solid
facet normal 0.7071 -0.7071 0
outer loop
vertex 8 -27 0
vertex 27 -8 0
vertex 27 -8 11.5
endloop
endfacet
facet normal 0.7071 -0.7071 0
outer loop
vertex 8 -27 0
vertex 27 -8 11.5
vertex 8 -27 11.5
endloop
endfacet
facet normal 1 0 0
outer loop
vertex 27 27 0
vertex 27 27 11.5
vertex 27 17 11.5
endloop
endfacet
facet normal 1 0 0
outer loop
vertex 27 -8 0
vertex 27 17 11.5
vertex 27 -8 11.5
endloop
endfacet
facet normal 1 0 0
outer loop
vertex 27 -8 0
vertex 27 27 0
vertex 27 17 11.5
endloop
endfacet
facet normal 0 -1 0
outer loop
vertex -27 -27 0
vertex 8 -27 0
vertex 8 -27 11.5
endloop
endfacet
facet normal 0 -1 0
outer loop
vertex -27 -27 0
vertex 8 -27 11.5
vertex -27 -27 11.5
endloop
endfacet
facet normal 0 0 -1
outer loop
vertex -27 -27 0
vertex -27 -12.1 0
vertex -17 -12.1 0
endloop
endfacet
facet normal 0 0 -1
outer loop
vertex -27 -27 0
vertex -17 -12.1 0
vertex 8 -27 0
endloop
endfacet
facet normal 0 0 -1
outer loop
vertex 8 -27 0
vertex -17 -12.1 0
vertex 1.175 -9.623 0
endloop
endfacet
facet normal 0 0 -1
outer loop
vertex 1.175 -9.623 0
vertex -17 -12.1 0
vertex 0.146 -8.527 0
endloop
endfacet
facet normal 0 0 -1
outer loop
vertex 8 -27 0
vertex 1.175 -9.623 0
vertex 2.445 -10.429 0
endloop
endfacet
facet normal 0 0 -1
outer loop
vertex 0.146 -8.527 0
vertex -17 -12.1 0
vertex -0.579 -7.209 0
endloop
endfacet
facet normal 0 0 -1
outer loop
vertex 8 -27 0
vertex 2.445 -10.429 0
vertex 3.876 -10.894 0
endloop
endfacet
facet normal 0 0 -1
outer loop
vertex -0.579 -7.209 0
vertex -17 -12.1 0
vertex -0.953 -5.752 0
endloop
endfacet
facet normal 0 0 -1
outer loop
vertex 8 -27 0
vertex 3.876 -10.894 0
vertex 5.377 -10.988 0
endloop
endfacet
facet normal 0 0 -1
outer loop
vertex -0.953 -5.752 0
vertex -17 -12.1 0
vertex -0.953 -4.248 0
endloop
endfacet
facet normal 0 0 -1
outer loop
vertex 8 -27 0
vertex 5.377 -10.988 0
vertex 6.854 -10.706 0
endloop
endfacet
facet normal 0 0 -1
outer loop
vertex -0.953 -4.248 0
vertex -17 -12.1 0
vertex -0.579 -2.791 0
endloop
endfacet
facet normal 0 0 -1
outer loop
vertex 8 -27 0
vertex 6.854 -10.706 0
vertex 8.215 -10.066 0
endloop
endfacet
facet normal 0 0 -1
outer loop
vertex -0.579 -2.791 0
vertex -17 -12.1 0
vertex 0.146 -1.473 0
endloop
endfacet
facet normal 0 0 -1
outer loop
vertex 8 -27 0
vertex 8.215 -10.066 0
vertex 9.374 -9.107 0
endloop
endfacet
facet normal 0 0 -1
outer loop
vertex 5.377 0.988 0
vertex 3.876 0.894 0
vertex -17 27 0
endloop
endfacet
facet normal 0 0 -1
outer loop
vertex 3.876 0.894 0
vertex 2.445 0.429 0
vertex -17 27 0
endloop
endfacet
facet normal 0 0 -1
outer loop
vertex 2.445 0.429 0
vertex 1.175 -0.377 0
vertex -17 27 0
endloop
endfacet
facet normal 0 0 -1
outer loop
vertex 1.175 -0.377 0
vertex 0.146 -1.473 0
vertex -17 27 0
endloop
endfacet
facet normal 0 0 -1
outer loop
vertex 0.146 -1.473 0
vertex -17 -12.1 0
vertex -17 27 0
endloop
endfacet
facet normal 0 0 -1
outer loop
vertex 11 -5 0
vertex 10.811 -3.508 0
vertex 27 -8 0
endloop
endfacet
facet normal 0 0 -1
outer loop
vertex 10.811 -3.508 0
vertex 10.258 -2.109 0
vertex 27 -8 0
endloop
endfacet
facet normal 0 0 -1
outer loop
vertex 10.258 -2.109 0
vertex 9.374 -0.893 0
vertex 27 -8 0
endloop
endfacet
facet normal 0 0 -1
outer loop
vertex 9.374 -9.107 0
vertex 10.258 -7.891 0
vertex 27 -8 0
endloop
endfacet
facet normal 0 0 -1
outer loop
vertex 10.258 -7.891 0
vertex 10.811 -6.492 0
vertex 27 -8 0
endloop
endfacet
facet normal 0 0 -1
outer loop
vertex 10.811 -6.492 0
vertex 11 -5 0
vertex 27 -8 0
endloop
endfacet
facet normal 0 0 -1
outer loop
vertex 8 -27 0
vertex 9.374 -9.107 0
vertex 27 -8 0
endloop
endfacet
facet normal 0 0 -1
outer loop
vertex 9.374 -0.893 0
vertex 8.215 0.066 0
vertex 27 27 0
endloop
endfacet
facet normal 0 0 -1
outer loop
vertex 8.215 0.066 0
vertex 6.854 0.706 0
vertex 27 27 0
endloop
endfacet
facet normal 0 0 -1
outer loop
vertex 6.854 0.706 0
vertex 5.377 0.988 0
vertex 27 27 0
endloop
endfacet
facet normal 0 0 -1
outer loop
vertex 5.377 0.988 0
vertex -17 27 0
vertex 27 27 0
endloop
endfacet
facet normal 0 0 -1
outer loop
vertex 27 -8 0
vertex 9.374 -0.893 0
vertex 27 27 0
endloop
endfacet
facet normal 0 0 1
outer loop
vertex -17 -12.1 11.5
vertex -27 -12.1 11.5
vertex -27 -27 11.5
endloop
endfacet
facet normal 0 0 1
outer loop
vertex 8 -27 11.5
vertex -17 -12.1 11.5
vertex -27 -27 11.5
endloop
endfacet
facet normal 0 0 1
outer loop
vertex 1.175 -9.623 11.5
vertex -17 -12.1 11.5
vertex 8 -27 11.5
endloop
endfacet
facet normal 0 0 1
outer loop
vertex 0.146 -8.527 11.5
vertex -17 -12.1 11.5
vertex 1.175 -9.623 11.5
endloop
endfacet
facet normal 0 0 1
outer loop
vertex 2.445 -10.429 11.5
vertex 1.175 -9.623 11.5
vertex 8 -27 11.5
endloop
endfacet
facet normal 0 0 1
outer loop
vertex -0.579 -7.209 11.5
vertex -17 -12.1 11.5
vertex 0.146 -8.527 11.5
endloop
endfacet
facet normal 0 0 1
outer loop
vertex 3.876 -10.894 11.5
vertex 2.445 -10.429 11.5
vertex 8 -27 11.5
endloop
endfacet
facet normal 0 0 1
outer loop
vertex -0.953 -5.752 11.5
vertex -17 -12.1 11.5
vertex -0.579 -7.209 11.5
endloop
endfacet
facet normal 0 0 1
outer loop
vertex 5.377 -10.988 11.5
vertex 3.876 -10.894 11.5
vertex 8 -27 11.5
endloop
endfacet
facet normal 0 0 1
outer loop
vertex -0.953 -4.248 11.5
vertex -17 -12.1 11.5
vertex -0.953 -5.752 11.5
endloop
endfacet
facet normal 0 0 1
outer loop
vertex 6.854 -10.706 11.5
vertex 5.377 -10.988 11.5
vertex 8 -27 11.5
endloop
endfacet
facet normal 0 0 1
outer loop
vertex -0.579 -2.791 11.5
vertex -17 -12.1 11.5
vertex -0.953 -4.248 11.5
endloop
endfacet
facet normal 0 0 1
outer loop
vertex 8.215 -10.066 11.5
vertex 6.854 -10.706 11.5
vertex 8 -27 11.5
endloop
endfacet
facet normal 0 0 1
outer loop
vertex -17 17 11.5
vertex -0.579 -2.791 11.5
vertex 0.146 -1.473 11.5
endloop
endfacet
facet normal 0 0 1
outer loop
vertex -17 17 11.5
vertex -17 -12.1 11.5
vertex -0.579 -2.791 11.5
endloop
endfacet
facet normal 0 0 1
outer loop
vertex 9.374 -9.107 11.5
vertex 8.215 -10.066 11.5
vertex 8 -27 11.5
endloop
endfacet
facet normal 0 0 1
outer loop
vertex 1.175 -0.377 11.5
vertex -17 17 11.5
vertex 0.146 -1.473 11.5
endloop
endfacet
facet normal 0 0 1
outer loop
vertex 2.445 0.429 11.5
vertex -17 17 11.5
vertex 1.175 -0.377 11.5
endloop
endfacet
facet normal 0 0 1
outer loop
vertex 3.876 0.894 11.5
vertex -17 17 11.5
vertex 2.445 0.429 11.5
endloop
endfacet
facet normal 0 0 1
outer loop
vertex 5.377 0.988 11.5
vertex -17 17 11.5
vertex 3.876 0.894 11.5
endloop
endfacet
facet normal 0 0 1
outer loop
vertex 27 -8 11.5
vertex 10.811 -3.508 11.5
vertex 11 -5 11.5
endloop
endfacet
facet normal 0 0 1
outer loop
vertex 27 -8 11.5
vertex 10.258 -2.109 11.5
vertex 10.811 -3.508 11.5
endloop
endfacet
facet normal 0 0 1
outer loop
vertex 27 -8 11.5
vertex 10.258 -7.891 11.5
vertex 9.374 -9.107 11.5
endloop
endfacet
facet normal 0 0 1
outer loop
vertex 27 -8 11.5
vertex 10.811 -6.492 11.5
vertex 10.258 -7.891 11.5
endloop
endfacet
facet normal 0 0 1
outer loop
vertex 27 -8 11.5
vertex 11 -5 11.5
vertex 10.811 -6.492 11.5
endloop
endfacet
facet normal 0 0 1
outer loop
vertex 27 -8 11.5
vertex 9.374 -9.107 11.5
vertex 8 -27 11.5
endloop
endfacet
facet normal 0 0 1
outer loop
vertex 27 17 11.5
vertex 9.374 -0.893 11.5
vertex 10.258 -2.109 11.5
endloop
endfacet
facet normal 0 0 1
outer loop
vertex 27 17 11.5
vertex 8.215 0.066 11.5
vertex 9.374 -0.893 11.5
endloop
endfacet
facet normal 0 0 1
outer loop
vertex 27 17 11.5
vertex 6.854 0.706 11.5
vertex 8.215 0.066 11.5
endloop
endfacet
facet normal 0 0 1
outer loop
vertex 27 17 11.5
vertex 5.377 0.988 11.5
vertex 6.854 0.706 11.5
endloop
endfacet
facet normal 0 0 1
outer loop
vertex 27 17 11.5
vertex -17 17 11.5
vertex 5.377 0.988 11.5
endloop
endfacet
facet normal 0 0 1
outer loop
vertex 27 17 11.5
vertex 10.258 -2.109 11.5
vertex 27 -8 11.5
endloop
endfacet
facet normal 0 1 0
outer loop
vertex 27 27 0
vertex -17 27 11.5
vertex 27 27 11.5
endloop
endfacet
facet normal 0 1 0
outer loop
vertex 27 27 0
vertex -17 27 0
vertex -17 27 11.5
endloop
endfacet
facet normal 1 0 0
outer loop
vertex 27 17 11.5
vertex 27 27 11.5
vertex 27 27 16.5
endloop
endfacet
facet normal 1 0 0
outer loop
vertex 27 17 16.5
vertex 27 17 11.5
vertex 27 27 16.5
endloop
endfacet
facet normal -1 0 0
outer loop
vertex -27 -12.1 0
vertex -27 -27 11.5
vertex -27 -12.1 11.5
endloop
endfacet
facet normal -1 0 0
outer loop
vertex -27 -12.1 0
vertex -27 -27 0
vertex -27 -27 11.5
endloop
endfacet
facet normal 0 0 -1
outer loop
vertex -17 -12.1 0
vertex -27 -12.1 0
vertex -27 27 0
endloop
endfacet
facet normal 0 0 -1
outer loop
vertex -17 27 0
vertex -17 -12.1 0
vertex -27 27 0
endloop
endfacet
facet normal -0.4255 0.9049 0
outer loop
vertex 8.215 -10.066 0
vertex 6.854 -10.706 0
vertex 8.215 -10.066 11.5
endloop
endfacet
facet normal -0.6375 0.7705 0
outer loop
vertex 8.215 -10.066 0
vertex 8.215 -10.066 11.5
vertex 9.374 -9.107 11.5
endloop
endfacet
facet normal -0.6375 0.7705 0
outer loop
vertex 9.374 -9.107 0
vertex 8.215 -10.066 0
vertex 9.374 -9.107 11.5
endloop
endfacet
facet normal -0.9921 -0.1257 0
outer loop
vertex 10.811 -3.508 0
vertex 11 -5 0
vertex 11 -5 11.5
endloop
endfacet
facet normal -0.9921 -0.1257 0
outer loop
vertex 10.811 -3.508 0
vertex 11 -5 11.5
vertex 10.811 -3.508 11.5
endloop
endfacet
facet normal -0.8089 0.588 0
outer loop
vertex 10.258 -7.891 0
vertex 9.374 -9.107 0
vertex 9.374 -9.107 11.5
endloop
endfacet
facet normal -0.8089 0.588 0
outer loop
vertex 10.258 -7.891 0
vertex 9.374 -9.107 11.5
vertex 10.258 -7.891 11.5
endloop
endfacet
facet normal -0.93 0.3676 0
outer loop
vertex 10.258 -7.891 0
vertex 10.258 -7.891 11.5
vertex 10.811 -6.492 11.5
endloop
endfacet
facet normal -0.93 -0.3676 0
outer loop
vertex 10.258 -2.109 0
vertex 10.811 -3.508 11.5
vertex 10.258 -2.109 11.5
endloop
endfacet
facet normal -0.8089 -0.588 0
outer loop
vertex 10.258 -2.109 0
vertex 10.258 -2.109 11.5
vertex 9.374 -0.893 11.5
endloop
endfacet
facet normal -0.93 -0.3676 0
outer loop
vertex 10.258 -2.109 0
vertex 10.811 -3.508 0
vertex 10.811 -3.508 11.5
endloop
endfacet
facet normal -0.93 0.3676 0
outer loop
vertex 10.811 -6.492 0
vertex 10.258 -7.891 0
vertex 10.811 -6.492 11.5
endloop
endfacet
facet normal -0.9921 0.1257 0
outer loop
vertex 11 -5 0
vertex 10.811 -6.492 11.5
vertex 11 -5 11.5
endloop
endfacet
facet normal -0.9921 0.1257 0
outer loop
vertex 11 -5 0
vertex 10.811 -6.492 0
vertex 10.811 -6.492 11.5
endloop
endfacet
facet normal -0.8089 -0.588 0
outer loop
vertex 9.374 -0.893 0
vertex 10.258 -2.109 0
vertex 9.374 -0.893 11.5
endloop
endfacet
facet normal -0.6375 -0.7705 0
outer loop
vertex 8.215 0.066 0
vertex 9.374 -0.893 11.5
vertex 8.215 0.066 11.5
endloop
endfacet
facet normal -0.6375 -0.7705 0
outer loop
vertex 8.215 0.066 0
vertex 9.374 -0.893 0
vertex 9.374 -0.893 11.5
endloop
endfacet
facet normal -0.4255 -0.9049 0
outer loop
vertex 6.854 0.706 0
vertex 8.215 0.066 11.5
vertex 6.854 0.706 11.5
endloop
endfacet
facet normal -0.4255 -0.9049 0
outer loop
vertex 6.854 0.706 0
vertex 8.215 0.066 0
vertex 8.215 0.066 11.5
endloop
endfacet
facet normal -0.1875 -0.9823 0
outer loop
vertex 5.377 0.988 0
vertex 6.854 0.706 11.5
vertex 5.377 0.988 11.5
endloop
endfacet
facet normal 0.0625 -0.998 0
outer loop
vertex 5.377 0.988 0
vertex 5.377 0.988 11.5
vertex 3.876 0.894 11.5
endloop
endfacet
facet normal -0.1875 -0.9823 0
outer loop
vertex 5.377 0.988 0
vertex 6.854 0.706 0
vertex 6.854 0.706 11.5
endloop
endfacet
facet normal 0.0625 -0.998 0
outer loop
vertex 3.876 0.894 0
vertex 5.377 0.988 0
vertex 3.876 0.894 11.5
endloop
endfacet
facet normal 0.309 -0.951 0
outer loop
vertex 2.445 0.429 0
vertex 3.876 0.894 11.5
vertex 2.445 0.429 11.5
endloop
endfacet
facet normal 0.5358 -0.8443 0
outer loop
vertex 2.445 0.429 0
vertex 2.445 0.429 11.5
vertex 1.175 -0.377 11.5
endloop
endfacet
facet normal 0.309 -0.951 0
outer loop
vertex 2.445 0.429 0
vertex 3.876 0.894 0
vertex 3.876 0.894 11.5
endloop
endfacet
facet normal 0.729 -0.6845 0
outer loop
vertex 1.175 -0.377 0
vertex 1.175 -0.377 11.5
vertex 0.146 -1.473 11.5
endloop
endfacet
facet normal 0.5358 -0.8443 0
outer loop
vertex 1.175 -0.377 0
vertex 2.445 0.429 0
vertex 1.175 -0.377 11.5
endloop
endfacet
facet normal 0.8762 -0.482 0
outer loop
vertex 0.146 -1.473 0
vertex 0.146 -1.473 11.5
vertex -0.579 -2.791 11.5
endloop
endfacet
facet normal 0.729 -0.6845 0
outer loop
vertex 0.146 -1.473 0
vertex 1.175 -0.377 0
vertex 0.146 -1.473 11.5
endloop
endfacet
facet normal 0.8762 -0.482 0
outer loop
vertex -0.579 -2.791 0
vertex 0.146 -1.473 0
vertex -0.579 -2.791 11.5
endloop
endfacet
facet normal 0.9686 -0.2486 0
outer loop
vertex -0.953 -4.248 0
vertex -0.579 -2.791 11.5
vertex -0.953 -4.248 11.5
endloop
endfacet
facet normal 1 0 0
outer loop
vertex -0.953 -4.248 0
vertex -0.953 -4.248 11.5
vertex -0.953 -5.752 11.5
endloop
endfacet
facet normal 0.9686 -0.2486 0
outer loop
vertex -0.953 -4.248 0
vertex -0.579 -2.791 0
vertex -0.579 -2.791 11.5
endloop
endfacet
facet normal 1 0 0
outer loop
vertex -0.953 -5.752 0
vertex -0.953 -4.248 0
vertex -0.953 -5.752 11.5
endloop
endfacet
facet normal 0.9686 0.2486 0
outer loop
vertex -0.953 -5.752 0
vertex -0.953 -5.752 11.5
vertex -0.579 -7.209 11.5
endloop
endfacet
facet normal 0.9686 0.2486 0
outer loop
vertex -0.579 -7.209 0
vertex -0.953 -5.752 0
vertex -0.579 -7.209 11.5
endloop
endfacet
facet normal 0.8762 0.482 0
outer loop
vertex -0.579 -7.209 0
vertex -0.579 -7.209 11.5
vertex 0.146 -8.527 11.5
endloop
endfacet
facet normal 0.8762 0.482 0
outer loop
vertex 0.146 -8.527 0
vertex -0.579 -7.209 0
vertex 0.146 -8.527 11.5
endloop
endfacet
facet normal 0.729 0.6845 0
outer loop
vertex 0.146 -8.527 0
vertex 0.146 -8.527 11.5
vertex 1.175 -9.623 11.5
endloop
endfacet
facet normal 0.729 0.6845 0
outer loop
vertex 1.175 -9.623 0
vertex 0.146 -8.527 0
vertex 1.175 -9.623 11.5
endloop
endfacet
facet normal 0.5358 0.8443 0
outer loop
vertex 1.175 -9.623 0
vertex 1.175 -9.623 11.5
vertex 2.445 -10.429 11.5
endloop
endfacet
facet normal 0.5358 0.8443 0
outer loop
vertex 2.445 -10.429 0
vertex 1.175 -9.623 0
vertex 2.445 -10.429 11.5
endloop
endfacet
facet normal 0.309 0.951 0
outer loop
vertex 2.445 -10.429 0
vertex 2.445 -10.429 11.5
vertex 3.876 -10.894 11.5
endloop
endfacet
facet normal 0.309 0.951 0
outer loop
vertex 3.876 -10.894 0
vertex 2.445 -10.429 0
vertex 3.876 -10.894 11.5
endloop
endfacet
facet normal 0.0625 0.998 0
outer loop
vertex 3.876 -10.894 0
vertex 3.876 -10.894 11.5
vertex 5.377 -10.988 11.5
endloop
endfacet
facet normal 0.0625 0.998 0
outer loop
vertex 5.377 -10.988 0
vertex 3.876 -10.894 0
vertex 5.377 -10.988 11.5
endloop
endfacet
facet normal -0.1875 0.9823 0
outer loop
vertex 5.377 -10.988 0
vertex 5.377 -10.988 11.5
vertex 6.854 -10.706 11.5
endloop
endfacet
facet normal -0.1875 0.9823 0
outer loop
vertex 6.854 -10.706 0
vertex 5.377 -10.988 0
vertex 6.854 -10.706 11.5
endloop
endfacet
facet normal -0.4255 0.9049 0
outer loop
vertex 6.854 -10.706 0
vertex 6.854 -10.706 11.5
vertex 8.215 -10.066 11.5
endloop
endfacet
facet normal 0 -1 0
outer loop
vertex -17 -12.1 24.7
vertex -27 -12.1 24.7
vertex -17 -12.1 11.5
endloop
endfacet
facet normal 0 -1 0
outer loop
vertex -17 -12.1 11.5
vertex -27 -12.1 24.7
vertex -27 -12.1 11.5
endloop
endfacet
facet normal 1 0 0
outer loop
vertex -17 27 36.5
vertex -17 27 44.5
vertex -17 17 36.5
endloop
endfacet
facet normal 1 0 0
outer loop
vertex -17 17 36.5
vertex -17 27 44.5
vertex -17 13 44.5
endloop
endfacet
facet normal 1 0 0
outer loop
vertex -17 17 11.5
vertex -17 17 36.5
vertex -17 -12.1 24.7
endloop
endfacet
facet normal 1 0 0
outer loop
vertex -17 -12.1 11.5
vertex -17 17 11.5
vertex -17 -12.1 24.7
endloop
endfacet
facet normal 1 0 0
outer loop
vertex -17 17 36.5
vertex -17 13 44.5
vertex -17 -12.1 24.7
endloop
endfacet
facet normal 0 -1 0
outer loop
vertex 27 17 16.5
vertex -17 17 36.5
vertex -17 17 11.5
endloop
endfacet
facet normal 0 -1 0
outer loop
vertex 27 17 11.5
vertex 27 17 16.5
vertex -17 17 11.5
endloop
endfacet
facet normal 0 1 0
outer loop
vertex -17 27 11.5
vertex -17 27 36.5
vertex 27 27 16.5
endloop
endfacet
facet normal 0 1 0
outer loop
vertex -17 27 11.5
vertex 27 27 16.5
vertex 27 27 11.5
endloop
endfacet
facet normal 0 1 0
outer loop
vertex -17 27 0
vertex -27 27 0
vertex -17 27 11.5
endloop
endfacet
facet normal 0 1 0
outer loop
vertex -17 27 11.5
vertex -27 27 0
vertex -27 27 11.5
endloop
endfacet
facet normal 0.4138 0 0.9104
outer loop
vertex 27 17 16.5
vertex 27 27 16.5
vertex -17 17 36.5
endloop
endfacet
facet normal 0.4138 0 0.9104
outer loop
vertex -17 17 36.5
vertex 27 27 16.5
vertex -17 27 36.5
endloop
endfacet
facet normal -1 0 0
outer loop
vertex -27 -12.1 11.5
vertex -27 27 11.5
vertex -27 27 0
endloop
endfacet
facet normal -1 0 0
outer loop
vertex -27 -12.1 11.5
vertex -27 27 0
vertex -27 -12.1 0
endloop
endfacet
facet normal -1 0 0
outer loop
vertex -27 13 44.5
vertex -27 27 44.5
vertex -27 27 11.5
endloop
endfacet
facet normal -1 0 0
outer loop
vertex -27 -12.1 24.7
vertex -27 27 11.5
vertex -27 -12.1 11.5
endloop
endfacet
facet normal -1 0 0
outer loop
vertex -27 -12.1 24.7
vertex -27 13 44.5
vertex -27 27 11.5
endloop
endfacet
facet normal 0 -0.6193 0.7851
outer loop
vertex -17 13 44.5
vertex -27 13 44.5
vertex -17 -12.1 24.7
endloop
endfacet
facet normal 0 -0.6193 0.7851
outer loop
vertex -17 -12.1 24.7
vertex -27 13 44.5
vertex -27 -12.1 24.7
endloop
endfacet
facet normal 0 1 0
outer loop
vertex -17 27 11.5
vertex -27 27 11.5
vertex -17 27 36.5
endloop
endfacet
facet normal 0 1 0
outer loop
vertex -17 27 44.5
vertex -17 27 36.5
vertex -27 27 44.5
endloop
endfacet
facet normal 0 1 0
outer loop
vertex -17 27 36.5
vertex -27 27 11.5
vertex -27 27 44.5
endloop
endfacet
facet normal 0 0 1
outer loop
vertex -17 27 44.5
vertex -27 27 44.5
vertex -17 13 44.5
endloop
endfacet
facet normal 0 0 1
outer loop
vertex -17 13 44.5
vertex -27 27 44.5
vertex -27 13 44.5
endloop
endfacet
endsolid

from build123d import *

# Parameters (mm, degrees)
PAD001_DEPTH = 10
SKETCH_R     = 6
PAD_DEPTH    = 11.5
PAD002_DEPTH = 10


with BuildPart() as lateral_i:
    # Sketch001 → Pad001 (new body)
    with BuildSketch(Plane.YZ.offset(-27)):
        Polygon((27, 0), (27, 44.5), (13, 44.5), (-12.1, 24.7), (-12.1, 0), align=None)
    extrude(amount=PAD001_DEPTH)


with BuildPart() as base:
    # Sketch → Pad (new body)
    with BuildSketch(Plane.XY):
        Polygon((-27, 27), (27, 27), (27, -8), (8, -27), (-27, -27), align=None)
        with Locations((5, -5)):
            Circle(SKETCH_R, mode=Mode.SUBTRACT)
    extrude(amount=PAD_DEPTH)


with BuildPart() as pieza_laterales:
    # Sketch002 → Pad002 (new body)
    with BuildSketch(Plane(origin=(5, 27, 0), x_dir=(1, 0, 0), z_dir=(0, -1, 0))):
        Polygon((22, 11.5), (22, 16.5), (-22, 36.5), (-22, 11.5), align=None)
    extrude(amount=PAD002_DEPTH)

    # Fusion: union Lateral-I, Base
    add(lateral_i.part)
    add(base.part)


solid = pieza_laterales.part
